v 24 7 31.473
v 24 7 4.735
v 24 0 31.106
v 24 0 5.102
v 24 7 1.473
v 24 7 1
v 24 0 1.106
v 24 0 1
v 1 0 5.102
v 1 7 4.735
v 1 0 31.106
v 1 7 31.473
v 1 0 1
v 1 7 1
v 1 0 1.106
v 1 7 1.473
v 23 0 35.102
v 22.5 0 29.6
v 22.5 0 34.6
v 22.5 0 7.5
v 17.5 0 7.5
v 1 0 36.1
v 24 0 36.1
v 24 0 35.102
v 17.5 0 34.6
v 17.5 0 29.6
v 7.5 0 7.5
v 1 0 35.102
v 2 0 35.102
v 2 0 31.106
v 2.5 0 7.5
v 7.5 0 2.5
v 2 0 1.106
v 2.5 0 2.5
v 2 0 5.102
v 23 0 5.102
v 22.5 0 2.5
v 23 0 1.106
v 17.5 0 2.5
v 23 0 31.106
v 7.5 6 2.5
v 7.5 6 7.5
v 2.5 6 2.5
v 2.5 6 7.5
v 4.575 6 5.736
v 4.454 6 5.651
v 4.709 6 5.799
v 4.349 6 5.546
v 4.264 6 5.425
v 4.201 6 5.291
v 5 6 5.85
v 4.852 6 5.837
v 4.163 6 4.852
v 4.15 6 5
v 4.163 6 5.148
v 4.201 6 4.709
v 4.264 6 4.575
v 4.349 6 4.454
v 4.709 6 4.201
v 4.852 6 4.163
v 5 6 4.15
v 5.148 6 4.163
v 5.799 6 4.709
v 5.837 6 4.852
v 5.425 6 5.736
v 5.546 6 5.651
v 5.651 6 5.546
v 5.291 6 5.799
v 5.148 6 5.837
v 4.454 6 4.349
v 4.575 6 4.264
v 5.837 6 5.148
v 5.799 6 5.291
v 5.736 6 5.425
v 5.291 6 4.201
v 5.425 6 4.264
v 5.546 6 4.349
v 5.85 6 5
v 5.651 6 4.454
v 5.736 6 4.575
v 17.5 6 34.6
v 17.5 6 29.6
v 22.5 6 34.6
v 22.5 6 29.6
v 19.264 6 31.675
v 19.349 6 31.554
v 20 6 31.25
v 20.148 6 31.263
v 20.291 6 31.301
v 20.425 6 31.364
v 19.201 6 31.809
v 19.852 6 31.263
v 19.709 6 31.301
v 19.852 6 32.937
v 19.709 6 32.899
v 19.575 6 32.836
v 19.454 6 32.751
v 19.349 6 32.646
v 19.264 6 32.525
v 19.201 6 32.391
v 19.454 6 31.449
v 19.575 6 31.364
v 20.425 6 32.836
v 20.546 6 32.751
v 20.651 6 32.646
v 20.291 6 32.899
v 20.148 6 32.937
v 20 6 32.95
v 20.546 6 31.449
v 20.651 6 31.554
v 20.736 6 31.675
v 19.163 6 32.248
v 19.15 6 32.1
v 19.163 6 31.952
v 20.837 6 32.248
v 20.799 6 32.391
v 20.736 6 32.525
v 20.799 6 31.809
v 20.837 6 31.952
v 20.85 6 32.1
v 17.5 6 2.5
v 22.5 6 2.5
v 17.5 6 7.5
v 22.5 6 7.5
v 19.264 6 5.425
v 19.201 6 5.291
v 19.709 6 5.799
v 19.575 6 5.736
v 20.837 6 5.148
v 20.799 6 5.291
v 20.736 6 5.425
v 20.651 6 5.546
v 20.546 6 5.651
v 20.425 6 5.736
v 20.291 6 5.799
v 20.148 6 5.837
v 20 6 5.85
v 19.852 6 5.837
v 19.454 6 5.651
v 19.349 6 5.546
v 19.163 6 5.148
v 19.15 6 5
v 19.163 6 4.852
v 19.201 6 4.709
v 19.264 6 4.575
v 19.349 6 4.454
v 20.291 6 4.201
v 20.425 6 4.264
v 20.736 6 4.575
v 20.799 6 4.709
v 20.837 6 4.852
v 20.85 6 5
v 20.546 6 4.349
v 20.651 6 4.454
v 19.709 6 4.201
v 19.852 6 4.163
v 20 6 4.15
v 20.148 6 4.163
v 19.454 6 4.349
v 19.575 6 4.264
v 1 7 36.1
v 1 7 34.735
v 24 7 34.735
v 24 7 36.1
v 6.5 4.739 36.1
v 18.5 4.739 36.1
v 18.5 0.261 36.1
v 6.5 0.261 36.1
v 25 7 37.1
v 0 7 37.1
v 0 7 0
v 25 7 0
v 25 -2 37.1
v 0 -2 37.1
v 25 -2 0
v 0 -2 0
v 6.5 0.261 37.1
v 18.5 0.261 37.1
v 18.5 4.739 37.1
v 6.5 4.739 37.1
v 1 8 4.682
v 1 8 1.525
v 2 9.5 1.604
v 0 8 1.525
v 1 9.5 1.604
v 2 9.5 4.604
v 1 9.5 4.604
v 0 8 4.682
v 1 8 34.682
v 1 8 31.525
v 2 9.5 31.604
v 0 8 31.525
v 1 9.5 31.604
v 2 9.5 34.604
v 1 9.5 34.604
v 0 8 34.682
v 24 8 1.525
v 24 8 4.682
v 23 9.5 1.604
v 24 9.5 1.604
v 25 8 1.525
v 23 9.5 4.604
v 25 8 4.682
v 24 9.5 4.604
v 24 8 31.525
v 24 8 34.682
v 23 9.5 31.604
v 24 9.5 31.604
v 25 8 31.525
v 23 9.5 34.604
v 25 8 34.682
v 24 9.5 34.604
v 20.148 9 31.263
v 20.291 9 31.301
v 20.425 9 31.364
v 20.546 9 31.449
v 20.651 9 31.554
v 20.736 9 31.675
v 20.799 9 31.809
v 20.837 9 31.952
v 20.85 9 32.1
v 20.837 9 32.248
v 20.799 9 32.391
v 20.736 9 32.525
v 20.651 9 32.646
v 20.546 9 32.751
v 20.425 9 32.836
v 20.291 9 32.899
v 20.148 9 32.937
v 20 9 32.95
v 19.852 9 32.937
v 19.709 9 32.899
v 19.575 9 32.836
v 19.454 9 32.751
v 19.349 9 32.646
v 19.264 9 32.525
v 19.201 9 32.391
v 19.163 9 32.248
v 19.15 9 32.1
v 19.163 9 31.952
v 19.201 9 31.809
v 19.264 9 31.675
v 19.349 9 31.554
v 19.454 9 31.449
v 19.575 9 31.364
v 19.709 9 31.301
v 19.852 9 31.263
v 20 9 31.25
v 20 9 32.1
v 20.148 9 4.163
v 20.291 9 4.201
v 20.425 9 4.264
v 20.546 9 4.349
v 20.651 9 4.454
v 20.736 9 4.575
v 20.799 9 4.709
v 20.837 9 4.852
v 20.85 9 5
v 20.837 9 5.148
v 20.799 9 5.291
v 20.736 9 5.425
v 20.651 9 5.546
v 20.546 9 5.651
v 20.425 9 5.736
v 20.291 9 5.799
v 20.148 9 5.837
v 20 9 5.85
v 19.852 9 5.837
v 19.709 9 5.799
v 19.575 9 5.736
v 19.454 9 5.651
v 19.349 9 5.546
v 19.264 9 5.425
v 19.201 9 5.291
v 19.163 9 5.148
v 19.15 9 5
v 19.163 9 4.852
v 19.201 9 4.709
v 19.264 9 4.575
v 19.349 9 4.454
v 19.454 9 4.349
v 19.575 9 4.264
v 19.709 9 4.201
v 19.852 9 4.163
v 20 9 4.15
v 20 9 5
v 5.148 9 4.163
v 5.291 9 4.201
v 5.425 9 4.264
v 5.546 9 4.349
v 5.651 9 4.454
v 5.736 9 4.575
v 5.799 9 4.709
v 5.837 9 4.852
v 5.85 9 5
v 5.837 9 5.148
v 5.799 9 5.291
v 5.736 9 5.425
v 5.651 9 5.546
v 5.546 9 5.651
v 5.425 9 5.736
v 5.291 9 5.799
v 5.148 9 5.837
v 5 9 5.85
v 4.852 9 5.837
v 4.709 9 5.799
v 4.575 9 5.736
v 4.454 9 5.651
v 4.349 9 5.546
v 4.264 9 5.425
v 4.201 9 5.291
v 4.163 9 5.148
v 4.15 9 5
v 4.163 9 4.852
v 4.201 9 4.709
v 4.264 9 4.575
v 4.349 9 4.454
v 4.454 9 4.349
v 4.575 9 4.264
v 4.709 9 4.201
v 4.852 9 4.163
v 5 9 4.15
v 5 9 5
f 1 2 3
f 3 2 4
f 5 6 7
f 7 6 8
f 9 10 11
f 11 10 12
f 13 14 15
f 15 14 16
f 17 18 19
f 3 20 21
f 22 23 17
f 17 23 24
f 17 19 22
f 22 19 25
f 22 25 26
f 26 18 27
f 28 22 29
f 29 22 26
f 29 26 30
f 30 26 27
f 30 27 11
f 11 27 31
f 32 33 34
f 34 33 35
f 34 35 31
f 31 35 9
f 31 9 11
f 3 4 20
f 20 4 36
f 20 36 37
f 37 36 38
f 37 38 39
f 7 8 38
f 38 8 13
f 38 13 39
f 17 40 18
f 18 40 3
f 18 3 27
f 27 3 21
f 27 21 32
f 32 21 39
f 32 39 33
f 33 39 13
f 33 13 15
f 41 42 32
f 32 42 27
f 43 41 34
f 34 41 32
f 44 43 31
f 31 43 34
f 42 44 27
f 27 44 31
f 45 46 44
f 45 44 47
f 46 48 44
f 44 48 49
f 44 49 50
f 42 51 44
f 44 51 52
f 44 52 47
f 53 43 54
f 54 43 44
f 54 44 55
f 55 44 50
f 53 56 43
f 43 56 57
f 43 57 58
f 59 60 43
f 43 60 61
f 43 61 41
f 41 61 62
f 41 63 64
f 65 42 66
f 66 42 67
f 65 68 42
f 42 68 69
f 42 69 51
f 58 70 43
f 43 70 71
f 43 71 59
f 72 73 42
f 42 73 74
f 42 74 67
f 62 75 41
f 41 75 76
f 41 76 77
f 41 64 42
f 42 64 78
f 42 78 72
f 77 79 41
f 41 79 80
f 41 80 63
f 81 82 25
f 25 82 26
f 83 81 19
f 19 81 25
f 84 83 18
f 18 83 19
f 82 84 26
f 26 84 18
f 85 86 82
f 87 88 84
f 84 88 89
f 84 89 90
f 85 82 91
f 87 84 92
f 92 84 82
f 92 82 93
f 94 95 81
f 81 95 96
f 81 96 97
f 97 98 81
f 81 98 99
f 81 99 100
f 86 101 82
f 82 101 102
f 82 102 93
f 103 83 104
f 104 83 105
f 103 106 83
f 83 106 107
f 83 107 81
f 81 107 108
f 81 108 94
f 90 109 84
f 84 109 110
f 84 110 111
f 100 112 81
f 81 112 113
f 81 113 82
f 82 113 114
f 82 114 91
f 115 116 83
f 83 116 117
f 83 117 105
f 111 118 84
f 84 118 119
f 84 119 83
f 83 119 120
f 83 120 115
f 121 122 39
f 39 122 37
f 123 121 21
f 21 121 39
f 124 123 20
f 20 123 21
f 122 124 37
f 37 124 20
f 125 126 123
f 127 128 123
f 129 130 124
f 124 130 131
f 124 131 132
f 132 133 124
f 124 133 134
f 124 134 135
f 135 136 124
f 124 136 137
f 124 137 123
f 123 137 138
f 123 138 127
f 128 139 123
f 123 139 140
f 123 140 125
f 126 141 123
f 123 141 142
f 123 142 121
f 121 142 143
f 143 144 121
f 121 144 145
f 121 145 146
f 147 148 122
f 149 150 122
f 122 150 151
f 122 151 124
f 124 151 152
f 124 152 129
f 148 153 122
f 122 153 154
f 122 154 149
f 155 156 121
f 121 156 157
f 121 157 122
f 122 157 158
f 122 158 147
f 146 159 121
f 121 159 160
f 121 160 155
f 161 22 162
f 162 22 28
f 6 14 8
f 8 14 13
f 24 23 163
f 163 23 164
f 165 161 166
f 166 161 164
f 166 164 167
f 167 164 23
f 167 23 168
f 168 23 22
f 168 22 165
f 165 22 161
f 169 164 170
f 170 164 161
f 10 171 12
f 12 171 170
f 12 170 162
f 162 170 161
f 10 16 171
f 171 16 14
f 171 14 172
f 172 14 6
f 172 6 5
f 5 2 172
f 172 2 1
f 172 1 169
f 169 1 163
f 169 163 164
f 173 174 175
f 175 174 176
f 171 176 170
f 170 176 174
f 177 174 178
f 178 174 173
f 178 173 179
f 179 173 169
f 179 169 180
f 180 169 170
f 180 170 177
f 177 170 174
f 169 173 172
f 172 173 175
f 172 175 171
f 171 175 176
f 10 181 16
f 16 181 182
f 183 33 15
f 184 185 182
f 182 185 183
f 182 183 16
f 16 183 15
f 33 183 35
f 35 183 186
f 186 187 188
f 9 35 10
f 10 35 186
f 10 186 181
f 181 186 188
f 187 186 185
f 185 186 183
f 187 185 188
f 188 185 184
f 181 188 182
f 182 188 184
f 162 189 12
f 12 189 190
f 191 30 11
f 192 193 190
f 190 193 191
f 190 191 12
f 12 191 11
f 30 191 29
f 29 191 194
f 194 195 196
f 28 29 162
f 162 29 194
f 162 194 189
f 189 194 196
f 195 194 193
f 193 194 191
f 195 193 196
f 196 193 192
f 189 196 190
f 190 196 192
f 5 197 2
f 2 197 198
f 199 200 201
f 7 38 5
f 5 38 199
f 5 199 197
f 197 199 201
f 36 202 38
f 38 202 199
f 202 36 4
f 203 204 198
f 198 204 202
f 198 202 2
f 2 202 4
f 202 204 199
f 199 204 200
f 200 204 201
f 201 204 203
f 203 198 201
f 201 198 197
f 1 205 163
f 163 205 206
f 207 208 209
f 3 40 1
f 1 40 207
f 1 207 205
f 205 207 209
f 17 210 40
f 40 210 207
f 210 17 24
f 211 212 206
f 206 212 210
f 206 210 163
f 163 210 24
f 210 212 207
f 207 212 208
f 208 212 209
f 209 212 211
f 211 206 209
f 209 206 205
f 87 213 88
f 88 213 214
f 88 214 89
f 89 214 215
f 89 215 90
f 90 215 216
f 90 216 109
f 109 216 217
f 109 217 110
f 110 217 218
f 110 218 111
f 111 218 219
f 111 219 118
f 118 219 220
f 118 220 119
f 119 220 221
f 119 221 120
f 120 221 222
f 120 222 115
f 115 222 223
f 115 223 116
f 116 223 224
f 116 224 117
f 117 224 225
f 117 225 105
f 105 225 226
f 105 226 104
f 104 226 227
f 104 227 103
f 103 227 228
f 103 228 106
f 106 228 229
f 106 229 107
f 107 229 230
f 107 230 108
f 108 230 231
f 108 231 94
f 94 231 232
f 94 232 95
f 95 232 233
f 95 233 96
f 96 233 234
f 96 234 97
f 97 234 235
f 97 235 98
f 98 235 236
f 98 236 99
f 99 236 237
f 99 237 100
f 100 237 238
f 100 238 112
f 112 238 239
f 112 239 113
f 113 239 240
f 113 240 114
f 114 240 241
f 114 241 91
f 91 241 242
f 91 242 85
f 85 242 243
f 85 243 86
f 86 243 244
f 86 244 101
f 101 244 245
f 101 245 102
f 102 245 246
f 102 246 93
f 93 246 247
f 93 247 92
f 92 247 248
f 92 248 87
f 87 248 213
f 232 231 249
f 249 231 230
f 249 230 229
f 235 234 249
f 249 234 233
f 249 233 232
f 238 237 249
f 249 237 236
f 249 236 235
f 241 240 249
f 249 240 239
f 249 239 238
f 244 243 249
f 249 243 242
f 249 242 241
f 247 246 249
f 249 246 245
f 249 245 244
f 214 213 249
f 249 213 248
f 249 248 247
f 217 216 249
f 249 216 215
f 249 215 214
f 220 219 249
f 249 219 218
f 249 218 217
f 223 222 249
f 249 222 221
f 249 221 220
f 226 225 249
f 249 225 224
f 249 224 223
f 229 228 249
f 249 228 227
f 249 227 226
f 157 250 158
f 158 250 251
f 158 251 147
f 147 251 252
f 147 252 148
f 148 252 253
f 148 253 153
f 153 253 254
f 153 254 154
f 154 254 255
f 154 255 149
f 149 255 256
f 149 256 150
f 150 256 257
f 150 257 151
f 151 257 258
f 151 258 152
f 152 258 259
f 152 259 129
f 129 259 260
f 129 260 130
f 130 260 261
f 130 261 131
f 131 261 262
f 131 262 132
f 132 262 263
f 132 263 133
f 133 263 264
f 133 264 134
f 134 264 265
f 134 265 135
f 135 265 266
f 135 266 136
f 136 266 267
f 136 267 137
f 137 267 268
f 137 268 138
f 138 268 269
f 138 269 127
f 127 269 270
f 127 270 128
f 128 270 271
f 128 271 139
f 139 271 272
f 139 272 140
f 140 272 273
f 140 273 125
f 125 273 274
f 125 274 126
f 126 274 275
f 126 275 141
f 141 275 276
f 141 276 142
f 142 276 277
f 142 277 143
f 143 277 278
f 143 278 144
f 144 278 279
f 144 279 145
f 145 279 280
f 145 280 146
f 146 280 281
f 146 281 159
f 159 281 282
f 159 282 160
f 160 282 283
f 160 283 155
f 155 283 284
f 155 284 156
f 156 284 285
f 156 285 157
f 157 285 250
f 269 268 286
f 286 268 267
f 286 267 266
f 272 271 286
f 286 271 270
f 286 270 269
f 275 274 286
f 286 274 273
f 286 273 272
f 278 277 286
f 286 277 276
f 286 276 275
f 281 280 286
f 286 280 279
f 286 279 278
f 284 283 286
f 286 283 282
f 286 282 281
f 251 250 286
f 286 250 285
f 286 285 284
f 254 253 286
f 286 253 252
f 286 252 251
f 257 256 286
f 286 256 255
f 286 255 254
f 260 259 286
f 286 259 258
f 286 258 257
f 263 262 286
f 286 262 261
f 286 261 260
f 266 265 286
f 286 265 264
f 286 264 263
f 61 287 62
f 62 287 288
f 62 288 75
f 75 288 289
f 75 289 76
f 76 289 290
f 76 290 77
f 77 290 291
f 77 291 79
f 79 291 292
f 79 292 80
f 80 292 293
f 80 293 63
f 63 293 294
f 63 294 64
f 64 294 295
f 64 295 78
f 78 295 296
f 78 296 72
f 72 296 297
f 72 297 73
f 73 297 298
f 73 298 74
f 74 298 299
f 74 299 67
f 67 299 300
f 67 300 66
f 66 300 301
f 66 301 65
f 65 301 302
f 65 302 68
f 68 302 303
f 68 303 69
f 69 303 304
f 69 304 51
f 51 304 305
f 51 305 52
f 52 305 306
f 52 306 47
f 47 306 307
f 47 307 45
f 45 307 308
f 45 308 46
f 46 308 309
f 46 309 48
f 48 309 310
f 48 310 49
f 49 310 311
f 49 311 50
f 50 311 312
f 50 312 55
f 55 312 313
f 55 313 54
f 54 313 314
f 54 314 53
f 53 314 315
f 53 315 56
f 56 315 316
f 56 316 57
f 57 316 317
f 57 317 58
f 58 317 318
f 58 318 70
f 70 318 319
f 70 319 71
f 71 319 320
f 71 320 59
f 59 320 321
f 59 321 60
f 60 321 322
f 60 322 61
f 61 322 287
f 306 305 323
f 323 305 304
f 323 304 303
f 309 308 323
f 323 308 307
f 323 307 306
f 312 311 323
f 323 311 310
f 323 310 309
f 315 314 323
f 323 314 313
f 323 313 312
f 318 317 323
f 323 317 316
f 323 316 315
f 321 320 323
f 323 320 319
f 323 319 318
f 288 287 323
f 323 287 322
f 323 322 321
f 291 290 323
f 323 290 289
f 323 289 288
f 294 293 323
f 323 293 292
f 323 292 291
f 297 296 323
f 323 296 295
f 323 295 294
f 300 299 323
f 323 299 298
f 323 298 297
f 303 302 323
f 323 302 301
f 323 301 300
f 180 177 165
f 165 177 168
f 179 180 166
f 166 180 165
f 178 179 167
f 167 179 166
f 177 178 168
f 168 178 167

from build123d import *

# Parameters (mm, degrees)
SKETCH2_W           = 25
SKETCH2_H           = 37.1
BOSS_EXTRUDE2_DEPTH = 2
SKETCH2_9_W         = 5
SKETCH2_9_H         = 5
SKETCH2_9_R         = 0.85
BOSS_EXTRUDE4_DEPTH = 6
SKETCH2_10_W        = 25
SKETCH2_10_H        = 37.1
SKETCH2_10_W_2      = 23
SKETCH2_10_H_2      = 35.1
BOSS_EXTRUDE5_DEPTH = 7
SNAP_START          = 1
SNAP_HOOK1_DEPTH    = 1
SNAP_START_2        = 1.525191878
SNAP_HOOK1_2_DEPTH  = 3.157223338
SNAP_START_3        = -1
SNAP_HOOK1_3_DEPTH  = 2
SNAP_HOOK1_4_DEPTH  = 1
LPATTERN1_START     = 1
LPATTERN1_DEPTH     = 1
LPATTERN1_START_2   = 31.525191878
LPATTERN1_2_DEPTH   = 3.157223338
LPATTERN1_START_3   = -1
LPATTERN1_3_DEPTH   = 2
LPATTERN1_4_DEPTH   = 1
SKETCH2_11_R        = 0.85
BOSS_EXTRUDE7_DEPTH = 9
SKETCH9_W           = 12
SKETCH9_H           = 4.478730726
CUT_EXTRUDE2_DEPTH  = 2


with BuildPart() as part:
    # Sketch2 → Boss-Extrude2 (new body)
    with BuildSketch(Plane(origin=(0, 0, 0), x_dir=(1, 0, 0), z_dir=(0, 1, 0))):
        with Locations((12.5, -18.55)):
            Rectangle(SKETCH2_W, SKETCH2_H)
    extrude(amount=-BOSS_EXTRUDE2_DEPTH)

    # Sketch2<9> → Boss-Extrude4 (add)
    # profile 1 of 3: a face of its own
    with BuildSketch(Plane(origin=(0, 0, 0), x_dir=(1, 0, 0), z_dir=(0, 1, 0))):
        with Locations((5, -5)):
            Rectangle(SKETCH2_9_W, SKETCH2_9_H)
        with Locations(Location((5, -5, 0), (0, 0, 270))):
            Circle(SKETCH2_9_R, mode=Mode.SUBTRACT)
    # profile 2 of 3: a face of its own
    with BuildSketch(Plane(origin=(0, 0, 0), x_dir=(1, 0, 0), z_dir=(0, 1, 0))):
        with Locations((20, -32.1)):
            Rectangle(SKETCH2_9_W, SKETCH2_9_H)
        with Locations(Location((20, -32.1, 0), (0, 0, 270))):
            Circle(SKETCH2_9_R, mode=Mode.SUBTRACT)
    # profile 3 of 3: a face of its own
    with BuildSketch(Plane(origin=(0, 0, 0), x_dir=(1, 0, 0), z_dir=(0, 1, 0))):
        with Locations((20, -5)):
            Rectangle(SKETCH2_9_W, SKETCH2_9_H)
        with Locations(Location((20, -5, 0), (0, 0, 270))):
            Circle(SKETCH2_9_R, mode=Mode.SUBTRACT)
    extrude(amount=BOSS_EXTRUDE4_DEPTH)

    # Sketch2<10> → Boss-Extrude5 (add)
    with BuildSketch(Plane(origin=(0, 0, 0), x_dir=(1, 0, 0), z_dir=(0, 1, 0))):
        with Locations((12.5, -18.55)):
            Rectangle(SKETCH2_10_W, SKETCH2_10_H)
        with Locations((12.5, -18.55)):
            Rectangle(SKETCH2_10_W_2, SKETCH2_10_H_2, mode=Mode.SUBTRACT)
    extrude(amount=BOSS_EXTRUDE5_DEPTH)



with BuildPart() as body_2:
    # Snap Hook1: read off the stored shape, not the designer's step
    # Snap Hook1 outline → Snap Hook1 (new body)
    with BuildSketch(Plane.YZ.offset(SNAP_START)):
        Polygon((8, 4.682415216), (8, 1.525191878), (9.5, 1.603803547), (9.5, 4.603803547), align=None)
    snap_hook1 = extrude(amount=SNAP_HOOK1_DEPTH)

    # Snap Hook1 2 outline → Snap Hook1 2 (add)
    with BuildSketch(Plane.XY.offset(SNAP_START_2)):
        Polygon((1, 8), (1, 9.5), (0, 8), align=None)
    snap_hook1_2 = extrude(amount=SNAP_HOOK1_2_DEPTH)

    # Snap Hook1 3 outline → Snap Hook1 3 (cut)
    with BuildSketch(Plane.YZ.offset(SNAP_START_3)):
        Polygon((9.5, 1.603803547), (8, 1.525191878), (11, 1.525191878), (11, 1.682415216), align=None)
        Polygon((11, 4.682415216), (8, 4.682415216), (9.5, 4.603803547), (11, 4.525191878), align=None)
    snap_hook1_3 = extrude(amount=SNAP_HOOK1_3_DEPTH, mode=Mode.SUBTRACT)


with BuildPart() as part_1:
    add(part.part)

    add(body_2.part)  # Snap Hook1 4 merges body 2
    # Snap Hook1 4 outline → Snap Hook1 4 (add)
    with BuildSketch(Plane.YZ.offset(SNAP_START)):
        Polygon((-1, 1.053521865), (0, 1.105929644), (8, 1.525191878), (8, 4.682415216), (0, 5.10167745), (-1, 5.154085229), align=None)
    snap_hook1_4 = extrude(amount=SNAP_HOOK1_4_DEPTH)



with BuildPart() as body_2_2:
    # LPattern1: read off the stored shape, not the designer's step
    # LPattern1 outline → LPattern1 (new body)
    with BuildSketch(Plane.YZ.offset(LPATTERN1_START)):
        Polygon((8, 31.525191878), (9.5, 31.603803547), (9.5, 34.603803547), (8, 34.682415216), align=None)
    lpattern1 = extrude(amount=LPATTERN1_DEPTH)

    # LPattern1 2 outline → LPattern1 2 (add)
    with BuildSketch(Plane.XY.offset(LPATTERN1_START_2)):
        Polygon((1, 8), (1, 9.5), (0, 8), align=None)
    lpattern1_2 = extrude(amount=LPATTERN1_2_DEPTH)

    # LPattern1 3 outline → LPattern1 3 (cut)
    with BuildSketch(Plane.YZ.offset(LPATTERN1_START_3)):
        Polygon((9.5, 31.603803547), (8, 31.525191878), (11, 31.525191878), (11, 31.682415216), align=None)
        Polygon((11, 34.682415216), (8, 34.682415216), (9.5, 34.603803547), (11, 34.525191878), align=None)
    lpattern1_3 = extrude(amount=LPATTERN1_3_DEPTH, mode=Mode.SUBTRACT)


with BuildPart() as part_2:
    add(part_1.part)

    add(body_2_2.part)  # LPattern1 4 merges body 2 2
    # LPattern1 4 outline → LPattern1 4 (add)
    with BuildSketch(Plane.YZ.offset(LPATTERN1_START)):
        Polygon((-1, 31.053521865), (0, 31.105929644), (8, 31.525191878), (8, 34.682415216), (0, 35.10167745), (-1, 35.154085229), align=None)
    lpattern1_4 = extrude(amount=LPATTERN1_4_DEPTH)

    # Mirror1: Snap Hook1, Snap Hook1 2, Snap Hook1 3, Snap Hook1 4, LPattern1, LPattern1 2, LPattern1 3, LPattern1 4 across plane
    add(snap_hook1.mirror(Plane.ZY.offset(-12.5)))
    add(snap_hook1_2.mirror(Plane.ZY.offset(-12.5)))
    add(snap_hook1_3.mirror(Plane.ZY.offset(-12.5)), mode=Mode.SUBTRACT)
    add(snap_hook1_4.mirror(Plane.ZY.offset(-12.5)))
    add(lpattern1.mirror(Plane.ZY.offset(-12.5)))
    add(lpattern1_2.mirror(Plane.ZY.offset(-12.5)))
    add(lpattern1_3.mirror(Plane.ZY.offset(-12.5)), mode=Mode.SUBTRACT)
    add(lpattern1_4.mirror(Plane.ZY.offset(-12.5)))

    # Sketch2<11> → Boss-Extrude7 (add)
    with BuildSketch(Plane(origin=(0, 0, 0), x_dir=(1, 0, 0), z_dir=(0, 1, 0))):
        with Locations(Location((20, -32.1, 0), (0, 0, 270))):
            Circle(SKETCH2_11_R)
        with Locations(Location((5, -5, 0), (0, 0, 270))):
            Circle(SKETCH2_11_R)
        with Locations(Location((20, -5, 0), (0, 0, 270))):
            Circle(SKETCH2_11_R)
    extrude(amount=BOSS_EXTRUDE7_DEPTH)

    # Sketch9 → Cut-Extrude2 (cut)
    with BuildSketch(Plane.XY.offset(37.1)):
        with Locations((12.5, 2.5)):
            Rectangle(SKETCH9_W, SKETCH9_H)
    extrude(amount=-CUT_EXTRUDE2_DEPTH, mode=Mode.SUBTRACT)


solid = part_2.part
